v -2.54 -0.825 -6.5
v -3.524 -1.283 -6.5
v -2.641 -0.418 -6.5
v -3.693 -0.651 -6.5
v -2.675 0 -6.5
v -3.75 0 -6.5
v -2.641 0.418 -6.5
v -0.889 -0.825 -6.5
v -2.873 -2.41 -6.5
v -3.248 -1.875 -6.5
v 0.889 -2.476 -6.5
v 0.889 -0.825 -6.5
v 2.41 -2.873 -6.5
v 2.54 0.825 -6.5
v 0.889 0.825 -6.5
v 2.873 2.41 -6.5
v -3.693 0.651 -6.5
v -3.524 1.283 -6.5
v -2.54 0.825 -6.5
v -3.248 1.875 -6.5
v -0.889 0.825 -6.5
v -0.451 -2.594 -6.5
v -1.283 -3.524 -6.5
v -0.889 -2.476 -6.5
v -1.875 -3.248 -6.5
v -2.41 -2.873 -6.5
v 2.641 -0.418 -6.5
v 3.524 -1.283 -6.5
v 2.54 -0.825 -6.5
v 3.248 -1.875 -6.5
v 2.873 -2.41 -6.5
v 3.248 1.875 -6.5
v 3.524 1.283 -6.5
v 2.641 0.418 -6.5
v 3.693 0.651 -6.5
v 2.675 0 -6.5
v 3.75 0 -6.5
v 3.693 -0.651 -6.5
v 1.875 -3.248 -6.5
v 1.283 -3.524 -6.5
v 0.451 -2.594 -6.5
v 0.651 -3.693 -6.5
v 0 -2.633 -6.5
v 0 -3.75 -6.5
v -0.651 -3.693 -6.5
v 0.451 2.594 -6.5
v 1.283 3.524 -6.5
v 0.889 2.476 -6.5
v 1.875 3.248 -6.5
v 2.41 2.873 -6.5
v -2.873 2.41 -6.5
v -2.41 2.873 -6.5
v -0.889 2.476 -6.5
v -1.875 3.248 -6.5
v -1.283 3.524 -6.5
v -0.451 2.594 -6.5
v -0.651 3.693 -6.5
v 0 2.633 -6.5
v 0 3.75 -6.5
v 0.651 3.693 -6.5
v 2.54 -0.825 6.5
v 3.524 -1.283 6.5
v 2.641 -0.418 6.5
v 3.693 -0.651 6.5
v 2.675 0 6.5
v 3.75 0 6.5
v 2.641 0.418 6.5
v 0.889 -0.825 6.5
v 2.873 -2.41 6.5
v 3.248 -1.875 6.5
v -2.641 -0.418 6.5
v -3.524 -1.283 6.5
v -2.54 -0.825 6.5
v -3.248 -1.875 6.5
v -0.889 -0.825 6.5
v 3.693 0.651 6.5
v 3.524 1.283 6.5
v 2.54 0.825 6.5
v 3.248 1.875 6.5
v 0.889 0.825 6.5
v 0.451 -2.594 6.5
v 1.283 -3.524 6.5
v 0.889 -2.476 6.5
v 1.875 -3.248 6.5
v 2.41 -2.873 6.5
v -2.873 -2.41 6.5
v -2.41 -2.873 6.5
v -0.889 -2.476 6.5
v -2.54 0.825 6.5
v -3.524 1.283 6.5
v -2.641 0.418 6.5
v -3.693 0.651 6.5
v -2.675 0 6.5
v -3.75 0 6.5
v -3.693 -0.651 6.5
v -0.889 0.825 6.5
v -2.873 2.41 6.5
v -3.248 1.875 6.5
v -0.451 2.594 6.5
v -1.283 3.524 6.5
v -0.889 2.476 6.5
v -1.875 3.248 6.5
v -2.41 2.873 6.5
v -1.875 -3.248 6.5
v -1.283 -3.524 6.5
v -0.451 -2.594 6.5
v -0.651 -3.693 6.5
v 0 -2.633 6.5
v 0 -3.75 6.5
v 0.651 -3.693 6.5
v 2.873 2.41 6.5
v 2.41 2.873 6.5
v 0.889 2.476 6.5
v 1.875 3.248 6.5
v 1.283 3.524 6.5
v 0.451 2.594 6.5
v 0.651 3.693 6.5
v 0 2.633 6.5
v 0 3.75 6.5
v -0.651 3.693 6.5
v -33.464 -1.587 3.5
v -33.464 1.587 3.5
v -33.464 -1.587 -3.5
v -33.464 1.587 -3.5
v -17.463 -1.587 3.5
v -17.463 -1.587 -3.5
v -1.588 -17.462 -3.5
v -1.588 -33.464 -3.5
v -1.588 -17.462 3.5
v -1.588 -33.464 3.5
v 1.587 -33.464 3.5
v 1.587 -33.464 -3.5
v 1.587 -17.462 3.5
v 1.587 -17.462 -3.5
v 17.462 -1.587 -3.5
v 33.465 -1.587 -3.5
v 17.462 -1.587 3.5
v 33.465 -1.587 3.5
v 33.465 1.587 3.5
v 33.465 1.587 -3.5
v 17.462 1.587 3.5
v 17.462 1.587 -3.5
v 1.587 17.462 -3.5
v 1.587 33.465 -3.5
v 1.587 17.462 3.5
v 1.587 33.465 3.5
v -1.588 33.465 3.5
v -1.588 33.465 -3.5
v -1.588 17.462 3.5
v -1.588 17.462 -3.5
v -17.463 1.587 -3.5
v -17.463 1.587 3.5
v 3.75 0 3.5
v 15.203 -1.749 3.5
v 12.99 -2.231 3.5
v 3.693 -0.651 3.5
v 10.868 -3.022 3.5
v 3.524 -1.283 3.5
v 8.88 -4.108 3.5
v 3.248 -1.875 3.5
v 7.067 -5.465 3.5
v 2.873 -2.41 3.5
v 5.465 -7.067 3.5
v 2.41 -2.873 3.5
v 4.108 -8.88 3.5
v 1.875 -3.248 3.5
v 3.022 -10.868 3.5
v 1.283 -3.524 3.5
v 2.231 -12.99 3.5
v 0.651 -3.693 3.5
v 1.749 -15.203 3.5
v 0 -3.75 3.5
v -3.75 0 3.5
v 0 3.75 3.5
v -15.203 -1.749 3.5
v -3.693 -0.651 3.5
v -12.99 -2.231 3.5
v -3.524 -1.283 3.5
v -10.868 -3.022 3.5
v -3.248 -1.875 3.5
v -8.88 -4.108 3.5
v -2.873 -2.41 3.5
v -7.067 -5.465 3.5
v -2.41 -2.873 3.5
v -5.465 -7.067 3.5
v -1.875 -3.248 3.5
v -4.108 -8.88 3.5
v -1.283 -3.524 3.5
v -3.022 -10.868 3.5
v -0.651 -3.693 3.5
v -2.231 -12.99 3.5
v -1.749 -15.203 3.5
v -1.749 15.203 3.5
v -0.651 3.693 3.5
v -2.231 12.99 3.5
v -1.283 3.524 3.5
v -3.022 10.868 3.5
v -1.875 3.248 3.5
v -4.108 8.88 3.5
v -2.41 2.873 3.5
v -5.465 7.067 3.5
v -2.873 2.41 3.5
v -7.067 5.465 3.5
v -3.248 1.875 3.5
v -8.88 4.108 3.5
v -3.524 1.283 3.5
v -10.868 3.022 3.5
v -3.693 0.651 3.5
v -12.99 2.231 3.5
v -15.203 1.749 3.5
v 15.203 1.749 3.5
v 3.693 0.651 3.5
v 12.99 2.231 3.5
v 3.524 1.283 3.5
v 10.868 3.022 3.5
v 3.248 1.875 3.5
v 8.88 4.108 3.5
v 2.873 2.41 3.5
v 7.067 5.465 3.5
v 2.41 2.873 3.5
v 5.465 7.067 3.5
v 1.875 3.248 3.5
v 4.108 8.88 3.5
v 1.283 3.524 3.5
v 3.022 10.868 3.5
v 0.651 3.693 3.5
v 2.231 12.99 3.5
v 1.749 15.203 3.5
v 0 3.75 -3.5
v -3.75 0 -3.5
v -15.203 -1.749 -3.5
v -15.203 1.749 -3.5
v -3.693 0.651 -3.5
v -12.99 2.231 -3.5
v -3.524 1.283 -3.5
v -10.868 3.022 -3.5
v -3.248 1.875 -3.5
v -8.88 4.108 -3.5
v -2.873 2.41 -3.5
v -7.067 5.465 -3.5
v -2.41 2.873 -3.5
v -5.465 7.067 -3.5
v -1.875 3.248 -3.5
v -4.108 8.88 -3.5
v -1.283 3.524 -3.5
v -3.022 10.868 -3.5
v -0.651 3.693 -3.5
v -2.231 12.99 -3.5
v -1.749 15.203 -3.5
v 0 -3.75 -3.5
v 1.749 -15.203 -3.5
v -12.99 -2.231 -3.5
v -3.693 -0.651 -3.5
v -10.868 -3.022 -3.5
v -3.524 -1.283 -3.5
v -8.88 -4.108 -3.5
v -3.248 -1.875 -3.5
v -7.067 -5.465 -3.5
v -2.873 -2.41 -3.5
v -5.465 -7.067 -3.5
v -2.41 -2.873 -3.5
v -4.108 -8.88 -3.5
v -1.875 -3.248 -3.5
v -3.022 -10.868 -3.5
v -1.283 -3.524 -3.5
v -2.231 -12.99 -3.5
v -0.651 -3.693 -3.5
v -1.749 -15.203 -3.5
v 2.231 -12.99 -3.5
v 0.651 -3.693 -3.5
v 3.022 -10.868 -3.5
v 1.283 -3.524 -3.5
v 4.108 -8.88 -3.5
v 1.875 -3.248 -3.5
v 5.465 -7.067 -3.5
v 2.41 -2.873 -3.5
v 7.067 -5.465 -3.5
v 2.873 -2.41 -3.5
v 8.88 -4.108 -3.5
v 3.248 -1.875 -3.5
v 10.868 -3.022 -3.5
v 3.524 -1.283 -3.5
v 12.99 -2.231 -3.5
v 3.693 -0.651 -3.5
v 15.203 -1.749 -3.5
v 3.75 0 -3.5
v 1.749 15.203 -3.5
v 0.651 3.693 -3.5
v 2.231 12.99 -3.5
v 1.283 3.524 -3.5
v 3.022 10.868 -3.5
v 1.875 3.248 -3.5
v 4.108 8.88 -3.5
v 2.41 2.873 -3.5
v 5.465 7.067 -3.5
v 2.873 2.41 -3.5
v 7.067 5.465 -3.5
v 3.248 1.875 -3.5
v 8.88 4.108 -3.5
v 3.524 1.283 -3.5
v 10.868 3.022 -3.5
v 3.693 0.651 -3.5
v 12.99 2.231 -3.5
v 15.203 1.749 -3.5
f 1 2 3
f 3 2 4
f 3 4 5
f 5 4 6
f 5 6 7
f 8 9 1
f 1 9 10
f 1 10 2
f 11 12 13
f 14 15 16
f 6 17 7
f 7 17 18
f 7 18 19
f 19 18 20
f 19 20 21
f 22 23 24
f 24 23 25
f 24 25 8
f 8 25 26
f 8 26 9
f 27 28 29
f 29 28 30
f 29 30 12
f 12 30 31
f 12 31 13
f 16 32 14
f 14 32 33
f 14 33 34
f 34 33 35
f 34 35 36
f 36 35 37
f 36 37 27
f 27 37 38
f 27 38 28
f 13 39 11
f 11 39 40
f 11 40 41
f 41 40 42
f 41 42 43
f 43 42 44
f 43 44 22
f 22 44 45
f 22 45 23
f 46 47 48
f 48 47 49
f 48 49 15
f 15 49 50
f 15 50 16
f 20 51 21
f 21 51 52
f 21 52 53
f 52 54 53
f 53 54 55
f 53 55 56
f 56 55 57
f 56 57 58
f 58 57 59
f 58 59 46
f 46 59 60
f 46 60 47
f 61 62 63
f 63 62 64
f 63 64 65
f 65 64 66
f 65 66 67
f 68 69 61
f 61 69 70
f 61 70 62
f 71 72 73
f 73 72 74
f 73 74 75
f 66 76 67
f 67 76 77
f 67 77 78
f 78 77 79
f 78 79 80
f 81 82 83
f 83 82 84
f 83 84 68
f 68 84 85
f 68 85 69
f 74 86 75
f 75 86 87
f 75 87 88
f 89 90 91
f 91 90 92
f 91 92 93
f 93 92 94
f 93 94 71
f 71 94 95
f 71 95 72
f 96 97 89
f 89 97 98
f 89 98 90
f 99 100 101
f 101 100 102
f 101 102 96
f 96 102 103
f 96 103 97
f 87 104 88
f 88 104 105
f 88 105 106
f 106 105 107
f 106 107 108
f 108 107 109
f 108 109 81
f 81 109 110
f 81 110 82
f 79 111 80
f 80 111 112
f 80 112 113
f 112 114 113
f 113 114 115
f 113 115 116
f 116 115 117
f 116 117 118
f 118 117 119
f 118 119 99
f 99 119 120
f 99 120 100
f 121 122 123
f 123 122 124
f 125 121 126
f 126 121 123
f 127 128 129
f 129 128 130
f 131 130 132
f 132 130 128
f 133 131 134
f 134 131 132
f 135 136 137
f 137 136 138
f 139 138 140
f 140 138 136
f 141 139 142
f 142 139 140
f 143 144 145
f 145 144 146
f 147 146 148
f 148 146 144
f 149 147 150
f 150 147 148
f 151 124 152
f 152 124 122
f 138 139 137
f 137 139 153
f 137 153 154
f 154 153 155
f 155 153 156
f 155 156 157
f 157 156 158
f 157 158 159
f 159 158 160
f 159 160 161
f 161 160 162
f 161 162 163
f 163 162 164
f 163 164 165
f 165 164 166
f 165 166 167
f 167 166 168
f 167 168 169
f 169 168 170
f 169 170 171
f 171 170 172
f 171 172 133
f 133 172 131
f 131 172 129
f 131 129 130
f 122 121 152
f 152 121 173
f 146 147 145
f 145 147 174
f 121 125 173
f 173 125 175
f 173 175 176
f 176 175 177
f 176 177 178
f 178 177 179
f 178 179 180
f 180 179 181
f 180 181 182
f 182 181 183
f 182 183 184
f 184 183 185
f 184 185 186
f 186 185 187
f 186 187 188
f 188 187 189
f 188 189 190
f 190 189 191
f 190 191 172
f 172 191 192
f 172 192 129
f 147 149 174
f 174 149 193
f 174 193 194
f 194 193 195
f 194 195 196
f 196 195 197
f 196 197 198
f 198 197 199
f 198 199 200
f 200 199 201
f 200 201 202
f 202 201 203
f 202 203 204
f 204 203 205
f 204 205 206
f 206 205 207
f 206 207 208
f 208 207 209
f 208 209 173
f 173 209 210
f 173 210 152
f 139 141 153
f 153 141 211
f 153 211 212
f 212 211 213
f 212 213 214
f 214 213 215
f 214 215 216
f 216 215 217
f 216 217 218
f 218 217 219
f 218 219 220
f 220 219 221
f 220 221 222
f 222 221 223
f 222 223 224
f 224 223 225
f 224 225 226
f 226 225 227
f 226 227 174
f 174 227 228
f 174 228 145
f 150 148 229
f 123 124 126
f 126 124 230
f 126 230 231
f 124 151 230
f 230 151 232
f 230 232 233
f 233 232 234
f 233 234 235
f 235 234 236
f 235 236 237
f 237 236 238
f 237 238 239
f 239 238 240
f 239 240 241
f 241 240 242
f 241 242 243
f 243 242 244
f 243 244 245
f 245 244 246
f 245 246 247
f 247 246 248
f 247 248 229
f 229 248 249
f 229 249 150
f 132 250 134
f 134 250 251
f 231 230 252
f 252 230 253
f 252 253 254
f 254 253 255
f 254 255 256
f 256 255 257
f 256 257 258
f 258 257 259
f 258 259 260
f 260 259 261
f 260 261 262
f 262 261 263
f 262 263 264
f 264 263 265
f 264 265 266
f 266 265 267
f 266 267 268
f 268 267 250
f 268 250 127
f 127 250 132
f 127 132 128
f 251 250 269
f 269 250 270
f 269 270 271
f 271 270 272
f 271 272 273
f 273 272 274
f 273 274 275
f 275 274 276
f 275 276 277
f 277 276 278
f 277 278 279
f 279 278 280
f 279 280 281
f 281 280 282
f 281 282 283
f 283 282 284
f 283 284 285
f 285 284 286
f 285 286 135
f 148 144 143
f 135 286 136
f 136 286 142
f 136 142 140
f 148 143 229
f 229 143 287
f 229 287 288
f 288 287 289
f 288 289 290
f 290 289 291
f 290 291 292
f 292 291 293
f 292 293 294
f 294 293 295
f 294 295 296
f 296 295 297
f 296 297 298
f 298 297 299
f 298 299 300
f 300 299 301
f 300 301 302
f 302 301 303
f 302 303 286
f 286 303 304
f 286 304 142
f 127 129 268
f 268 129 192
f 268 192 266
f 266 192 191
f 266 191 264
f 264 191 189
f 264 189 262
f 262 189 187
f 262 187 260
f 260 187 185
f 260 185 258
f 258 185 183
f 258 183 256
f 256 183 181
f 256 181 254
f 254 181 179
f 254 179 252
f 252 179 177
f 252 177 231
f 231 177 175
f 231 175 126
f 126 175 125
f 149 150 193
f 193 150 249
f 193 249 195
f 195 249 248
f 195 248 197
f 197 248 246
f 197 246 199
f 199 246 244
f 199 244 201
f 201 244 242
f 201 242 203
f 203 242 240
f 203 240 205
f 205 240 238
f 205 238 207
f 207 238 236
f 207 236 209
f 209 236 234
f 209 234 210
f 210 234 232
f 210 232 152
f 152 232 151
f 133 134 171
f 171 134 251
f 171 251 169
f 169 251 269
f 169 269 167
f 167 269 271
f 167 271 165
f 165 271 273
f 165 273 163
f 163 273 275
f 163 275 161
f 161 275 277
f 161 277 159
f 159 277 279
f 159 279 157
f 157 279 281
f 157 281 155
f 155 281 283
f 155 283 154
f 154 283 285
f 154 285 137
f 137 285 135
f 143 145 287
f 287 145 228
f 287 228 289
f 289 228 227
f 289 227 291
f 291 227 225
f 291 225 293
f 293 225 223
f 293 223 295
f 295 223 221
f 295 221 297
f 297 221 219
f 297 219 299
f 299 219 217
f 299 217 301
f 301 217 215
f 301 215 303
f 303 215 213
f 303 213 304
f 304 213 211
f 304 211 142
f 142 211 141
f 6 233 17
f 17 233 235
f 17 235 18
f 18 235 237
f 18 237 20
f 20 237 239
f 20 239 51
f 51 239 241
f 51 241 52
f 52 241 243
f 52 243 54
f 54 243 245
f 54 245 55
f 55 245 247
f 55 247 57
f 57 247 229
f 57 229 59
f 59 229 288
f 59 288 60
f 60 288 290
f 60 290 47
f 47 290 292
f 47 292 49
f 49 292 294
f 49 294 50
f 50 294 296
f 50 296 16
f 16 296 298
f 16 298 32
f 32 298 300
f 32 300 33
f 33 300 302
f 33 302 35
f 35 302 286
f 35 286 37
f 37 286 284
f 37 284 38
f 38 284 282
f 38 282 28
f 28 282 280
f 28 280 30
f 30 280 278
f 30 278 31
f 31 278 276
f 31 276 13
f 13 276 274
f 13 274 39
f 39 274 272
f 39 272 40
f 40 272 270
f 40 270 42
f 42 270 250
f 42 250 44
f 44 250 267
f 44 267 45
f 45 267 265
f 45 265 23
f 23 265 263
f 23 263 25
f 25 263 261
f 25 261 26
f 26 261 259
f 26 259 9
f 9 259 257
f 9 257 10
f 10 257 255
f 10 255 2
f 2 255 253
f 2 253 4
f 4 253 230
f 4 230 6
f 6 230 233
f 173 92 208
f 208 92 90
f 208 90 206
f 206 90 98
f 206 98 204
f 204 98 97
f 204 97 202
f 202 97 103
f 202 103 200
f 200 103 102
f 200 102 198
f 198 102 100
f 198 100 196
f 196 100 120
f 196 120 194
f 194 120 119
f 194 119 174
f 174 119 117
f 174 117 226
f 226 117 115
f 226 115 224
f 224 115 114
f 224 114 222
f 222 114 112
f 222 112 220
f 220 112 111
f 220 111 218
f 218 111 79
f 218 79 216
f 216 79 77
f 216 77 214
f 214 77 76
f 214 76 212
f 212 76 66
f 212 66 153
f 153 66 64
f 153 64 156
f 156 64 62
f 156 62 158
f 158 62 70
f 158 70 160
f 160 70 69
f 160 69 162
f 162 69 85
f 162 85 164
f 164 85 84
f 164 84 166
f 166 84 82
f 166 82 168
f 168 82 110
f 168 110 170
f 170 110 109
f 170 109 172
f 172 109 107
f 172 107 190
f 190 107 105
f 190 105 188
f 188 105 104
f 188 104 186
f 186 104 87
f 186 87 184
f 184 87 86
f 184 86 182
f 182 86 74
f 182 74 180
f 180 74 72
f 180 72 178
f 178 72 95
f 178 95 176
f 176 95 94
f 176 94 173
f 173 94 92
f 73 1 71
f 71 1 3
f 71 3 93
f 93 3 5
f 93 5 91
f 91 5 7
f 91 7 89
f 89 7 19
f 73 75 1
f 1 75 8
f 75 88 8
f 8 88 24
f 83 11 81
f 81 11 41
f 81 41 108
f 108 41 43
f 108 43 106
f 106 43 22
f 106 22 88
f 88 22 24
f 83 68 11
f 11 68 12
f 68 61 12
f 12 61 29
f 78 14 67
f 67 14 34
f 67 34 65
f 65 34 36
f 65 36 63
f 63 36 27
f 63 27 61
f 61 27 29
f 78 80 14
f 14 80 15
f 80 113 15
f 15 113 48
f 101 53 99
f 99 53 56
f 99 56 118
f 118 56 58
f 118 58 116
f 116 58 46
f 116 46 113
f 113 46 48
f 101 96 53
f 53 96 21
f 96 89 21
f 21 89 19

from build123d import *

# Parameters (mm, degrees)
BOSS_EXTRUDE1_DEPTH      = 3.5
FILLET1_R                = 15.875
SKETCH3_R                = 3.75
BOSS_EXTRUDE2_DEPTH      = 3
BOSS_EXTRUDE2_DEPTH_BACK = 9.99999997
CUT_EXTRUDE1_DEPTH       = 13.99999997


with BuildPart() as part:
    # Sketch1 → Boss-Extrude1 (new body, symmetric)
    with BuildSketch(Plane.XY):
        Polygon((1.5875, -1.5875), (1.5875, -33.4645), (-1.5875, -33.4645), (-1.5875, -1.5875), (-33.4645, -1.5875), (-33.4645, 1.5875), (-1.5875, 1.5875), (-1.5875, 33.4645), (1.5875, 33.4645), (1.5875, 1.5875), (33.4645, 1.5875), (33.4645, -1.5875), align=None)
    extrude(amount=BOSS_EXTRUDE1_DEPTH, both=True)

    # Fillet1
    fillet1_edges = [part.edges().sort_by_distance(p)[0] for p in [
        (-1.5875, 1.5875, 0),
        (1.5875, 1.5875, 0),
        (1.5875, -1.5875, 0),
        (-1.5875, -1.5875, 0),
    ]]
    fillet(fillet1_edges, radius=FILLET1_R)

    # Sketch3 → Boss-Extrude2 (add, two sides)
    with BuildSketch(Plane(origin=(0, 0, -3.5), x_dir=(-1, 0, 0), z_dir=(0, 0, -1))) as boss_extrude2_sk:
        Circle(SKETCH3_R)
    extrude(amount=BOSS_EXTRUDE2_DEPTH)
    extrude(boss_extrude2_sk.sketch, amount=-BOSS_EXTRUDE2_DEPTH_BACK)

    # Sketch4 → Cut-Extrude1 (cut, through all)
    with BuildSketch(Plane(origin=(0, 0, -6.5), x_dir=(-1, 0, 0), z_dir=(0, 0, -1))):
        with BuildLine():
            Line((-0.889, 0.8255), (-0.889, 2.4765))
            ThreePointArc((-0.889, 2.4765), (0, 2.633207345), (0.889, 2.4765))
            Line((0.889, 2.4765), (0.889, 0.8255))
            Line((0.889, 0.8255), (2.54, 0.8255))
            ThreePointArc((2.54, 0.8255), (2.674528493, 0), (2.54, -0.8255))
            Line((2.54, -0.8255), (0.889, -0.8255))
            Line((0.889, -0.8255), (0.889, -2.4765))
            ThreePointArc((0.889, -2.4765), (0, -2.633207345), (-0.889, -2.4765))
            Line((-0.889, -2.4765), (-0.889, -0.8255))
            Line((-0.889, -0.8255), (-2.54, -0.8255))
            ThreePointArc((-2.54, -0.8255), (-2.674528493, 0), (-2.54, 0.8255))
            Line((-2.54, 0.8255), (-0.889, 0.8255))
        make_face()
    extrude(amount=-CUT_EXTRUDE1_DEPTH, mode=Mode.SUBTRACT)


solid = part.part
